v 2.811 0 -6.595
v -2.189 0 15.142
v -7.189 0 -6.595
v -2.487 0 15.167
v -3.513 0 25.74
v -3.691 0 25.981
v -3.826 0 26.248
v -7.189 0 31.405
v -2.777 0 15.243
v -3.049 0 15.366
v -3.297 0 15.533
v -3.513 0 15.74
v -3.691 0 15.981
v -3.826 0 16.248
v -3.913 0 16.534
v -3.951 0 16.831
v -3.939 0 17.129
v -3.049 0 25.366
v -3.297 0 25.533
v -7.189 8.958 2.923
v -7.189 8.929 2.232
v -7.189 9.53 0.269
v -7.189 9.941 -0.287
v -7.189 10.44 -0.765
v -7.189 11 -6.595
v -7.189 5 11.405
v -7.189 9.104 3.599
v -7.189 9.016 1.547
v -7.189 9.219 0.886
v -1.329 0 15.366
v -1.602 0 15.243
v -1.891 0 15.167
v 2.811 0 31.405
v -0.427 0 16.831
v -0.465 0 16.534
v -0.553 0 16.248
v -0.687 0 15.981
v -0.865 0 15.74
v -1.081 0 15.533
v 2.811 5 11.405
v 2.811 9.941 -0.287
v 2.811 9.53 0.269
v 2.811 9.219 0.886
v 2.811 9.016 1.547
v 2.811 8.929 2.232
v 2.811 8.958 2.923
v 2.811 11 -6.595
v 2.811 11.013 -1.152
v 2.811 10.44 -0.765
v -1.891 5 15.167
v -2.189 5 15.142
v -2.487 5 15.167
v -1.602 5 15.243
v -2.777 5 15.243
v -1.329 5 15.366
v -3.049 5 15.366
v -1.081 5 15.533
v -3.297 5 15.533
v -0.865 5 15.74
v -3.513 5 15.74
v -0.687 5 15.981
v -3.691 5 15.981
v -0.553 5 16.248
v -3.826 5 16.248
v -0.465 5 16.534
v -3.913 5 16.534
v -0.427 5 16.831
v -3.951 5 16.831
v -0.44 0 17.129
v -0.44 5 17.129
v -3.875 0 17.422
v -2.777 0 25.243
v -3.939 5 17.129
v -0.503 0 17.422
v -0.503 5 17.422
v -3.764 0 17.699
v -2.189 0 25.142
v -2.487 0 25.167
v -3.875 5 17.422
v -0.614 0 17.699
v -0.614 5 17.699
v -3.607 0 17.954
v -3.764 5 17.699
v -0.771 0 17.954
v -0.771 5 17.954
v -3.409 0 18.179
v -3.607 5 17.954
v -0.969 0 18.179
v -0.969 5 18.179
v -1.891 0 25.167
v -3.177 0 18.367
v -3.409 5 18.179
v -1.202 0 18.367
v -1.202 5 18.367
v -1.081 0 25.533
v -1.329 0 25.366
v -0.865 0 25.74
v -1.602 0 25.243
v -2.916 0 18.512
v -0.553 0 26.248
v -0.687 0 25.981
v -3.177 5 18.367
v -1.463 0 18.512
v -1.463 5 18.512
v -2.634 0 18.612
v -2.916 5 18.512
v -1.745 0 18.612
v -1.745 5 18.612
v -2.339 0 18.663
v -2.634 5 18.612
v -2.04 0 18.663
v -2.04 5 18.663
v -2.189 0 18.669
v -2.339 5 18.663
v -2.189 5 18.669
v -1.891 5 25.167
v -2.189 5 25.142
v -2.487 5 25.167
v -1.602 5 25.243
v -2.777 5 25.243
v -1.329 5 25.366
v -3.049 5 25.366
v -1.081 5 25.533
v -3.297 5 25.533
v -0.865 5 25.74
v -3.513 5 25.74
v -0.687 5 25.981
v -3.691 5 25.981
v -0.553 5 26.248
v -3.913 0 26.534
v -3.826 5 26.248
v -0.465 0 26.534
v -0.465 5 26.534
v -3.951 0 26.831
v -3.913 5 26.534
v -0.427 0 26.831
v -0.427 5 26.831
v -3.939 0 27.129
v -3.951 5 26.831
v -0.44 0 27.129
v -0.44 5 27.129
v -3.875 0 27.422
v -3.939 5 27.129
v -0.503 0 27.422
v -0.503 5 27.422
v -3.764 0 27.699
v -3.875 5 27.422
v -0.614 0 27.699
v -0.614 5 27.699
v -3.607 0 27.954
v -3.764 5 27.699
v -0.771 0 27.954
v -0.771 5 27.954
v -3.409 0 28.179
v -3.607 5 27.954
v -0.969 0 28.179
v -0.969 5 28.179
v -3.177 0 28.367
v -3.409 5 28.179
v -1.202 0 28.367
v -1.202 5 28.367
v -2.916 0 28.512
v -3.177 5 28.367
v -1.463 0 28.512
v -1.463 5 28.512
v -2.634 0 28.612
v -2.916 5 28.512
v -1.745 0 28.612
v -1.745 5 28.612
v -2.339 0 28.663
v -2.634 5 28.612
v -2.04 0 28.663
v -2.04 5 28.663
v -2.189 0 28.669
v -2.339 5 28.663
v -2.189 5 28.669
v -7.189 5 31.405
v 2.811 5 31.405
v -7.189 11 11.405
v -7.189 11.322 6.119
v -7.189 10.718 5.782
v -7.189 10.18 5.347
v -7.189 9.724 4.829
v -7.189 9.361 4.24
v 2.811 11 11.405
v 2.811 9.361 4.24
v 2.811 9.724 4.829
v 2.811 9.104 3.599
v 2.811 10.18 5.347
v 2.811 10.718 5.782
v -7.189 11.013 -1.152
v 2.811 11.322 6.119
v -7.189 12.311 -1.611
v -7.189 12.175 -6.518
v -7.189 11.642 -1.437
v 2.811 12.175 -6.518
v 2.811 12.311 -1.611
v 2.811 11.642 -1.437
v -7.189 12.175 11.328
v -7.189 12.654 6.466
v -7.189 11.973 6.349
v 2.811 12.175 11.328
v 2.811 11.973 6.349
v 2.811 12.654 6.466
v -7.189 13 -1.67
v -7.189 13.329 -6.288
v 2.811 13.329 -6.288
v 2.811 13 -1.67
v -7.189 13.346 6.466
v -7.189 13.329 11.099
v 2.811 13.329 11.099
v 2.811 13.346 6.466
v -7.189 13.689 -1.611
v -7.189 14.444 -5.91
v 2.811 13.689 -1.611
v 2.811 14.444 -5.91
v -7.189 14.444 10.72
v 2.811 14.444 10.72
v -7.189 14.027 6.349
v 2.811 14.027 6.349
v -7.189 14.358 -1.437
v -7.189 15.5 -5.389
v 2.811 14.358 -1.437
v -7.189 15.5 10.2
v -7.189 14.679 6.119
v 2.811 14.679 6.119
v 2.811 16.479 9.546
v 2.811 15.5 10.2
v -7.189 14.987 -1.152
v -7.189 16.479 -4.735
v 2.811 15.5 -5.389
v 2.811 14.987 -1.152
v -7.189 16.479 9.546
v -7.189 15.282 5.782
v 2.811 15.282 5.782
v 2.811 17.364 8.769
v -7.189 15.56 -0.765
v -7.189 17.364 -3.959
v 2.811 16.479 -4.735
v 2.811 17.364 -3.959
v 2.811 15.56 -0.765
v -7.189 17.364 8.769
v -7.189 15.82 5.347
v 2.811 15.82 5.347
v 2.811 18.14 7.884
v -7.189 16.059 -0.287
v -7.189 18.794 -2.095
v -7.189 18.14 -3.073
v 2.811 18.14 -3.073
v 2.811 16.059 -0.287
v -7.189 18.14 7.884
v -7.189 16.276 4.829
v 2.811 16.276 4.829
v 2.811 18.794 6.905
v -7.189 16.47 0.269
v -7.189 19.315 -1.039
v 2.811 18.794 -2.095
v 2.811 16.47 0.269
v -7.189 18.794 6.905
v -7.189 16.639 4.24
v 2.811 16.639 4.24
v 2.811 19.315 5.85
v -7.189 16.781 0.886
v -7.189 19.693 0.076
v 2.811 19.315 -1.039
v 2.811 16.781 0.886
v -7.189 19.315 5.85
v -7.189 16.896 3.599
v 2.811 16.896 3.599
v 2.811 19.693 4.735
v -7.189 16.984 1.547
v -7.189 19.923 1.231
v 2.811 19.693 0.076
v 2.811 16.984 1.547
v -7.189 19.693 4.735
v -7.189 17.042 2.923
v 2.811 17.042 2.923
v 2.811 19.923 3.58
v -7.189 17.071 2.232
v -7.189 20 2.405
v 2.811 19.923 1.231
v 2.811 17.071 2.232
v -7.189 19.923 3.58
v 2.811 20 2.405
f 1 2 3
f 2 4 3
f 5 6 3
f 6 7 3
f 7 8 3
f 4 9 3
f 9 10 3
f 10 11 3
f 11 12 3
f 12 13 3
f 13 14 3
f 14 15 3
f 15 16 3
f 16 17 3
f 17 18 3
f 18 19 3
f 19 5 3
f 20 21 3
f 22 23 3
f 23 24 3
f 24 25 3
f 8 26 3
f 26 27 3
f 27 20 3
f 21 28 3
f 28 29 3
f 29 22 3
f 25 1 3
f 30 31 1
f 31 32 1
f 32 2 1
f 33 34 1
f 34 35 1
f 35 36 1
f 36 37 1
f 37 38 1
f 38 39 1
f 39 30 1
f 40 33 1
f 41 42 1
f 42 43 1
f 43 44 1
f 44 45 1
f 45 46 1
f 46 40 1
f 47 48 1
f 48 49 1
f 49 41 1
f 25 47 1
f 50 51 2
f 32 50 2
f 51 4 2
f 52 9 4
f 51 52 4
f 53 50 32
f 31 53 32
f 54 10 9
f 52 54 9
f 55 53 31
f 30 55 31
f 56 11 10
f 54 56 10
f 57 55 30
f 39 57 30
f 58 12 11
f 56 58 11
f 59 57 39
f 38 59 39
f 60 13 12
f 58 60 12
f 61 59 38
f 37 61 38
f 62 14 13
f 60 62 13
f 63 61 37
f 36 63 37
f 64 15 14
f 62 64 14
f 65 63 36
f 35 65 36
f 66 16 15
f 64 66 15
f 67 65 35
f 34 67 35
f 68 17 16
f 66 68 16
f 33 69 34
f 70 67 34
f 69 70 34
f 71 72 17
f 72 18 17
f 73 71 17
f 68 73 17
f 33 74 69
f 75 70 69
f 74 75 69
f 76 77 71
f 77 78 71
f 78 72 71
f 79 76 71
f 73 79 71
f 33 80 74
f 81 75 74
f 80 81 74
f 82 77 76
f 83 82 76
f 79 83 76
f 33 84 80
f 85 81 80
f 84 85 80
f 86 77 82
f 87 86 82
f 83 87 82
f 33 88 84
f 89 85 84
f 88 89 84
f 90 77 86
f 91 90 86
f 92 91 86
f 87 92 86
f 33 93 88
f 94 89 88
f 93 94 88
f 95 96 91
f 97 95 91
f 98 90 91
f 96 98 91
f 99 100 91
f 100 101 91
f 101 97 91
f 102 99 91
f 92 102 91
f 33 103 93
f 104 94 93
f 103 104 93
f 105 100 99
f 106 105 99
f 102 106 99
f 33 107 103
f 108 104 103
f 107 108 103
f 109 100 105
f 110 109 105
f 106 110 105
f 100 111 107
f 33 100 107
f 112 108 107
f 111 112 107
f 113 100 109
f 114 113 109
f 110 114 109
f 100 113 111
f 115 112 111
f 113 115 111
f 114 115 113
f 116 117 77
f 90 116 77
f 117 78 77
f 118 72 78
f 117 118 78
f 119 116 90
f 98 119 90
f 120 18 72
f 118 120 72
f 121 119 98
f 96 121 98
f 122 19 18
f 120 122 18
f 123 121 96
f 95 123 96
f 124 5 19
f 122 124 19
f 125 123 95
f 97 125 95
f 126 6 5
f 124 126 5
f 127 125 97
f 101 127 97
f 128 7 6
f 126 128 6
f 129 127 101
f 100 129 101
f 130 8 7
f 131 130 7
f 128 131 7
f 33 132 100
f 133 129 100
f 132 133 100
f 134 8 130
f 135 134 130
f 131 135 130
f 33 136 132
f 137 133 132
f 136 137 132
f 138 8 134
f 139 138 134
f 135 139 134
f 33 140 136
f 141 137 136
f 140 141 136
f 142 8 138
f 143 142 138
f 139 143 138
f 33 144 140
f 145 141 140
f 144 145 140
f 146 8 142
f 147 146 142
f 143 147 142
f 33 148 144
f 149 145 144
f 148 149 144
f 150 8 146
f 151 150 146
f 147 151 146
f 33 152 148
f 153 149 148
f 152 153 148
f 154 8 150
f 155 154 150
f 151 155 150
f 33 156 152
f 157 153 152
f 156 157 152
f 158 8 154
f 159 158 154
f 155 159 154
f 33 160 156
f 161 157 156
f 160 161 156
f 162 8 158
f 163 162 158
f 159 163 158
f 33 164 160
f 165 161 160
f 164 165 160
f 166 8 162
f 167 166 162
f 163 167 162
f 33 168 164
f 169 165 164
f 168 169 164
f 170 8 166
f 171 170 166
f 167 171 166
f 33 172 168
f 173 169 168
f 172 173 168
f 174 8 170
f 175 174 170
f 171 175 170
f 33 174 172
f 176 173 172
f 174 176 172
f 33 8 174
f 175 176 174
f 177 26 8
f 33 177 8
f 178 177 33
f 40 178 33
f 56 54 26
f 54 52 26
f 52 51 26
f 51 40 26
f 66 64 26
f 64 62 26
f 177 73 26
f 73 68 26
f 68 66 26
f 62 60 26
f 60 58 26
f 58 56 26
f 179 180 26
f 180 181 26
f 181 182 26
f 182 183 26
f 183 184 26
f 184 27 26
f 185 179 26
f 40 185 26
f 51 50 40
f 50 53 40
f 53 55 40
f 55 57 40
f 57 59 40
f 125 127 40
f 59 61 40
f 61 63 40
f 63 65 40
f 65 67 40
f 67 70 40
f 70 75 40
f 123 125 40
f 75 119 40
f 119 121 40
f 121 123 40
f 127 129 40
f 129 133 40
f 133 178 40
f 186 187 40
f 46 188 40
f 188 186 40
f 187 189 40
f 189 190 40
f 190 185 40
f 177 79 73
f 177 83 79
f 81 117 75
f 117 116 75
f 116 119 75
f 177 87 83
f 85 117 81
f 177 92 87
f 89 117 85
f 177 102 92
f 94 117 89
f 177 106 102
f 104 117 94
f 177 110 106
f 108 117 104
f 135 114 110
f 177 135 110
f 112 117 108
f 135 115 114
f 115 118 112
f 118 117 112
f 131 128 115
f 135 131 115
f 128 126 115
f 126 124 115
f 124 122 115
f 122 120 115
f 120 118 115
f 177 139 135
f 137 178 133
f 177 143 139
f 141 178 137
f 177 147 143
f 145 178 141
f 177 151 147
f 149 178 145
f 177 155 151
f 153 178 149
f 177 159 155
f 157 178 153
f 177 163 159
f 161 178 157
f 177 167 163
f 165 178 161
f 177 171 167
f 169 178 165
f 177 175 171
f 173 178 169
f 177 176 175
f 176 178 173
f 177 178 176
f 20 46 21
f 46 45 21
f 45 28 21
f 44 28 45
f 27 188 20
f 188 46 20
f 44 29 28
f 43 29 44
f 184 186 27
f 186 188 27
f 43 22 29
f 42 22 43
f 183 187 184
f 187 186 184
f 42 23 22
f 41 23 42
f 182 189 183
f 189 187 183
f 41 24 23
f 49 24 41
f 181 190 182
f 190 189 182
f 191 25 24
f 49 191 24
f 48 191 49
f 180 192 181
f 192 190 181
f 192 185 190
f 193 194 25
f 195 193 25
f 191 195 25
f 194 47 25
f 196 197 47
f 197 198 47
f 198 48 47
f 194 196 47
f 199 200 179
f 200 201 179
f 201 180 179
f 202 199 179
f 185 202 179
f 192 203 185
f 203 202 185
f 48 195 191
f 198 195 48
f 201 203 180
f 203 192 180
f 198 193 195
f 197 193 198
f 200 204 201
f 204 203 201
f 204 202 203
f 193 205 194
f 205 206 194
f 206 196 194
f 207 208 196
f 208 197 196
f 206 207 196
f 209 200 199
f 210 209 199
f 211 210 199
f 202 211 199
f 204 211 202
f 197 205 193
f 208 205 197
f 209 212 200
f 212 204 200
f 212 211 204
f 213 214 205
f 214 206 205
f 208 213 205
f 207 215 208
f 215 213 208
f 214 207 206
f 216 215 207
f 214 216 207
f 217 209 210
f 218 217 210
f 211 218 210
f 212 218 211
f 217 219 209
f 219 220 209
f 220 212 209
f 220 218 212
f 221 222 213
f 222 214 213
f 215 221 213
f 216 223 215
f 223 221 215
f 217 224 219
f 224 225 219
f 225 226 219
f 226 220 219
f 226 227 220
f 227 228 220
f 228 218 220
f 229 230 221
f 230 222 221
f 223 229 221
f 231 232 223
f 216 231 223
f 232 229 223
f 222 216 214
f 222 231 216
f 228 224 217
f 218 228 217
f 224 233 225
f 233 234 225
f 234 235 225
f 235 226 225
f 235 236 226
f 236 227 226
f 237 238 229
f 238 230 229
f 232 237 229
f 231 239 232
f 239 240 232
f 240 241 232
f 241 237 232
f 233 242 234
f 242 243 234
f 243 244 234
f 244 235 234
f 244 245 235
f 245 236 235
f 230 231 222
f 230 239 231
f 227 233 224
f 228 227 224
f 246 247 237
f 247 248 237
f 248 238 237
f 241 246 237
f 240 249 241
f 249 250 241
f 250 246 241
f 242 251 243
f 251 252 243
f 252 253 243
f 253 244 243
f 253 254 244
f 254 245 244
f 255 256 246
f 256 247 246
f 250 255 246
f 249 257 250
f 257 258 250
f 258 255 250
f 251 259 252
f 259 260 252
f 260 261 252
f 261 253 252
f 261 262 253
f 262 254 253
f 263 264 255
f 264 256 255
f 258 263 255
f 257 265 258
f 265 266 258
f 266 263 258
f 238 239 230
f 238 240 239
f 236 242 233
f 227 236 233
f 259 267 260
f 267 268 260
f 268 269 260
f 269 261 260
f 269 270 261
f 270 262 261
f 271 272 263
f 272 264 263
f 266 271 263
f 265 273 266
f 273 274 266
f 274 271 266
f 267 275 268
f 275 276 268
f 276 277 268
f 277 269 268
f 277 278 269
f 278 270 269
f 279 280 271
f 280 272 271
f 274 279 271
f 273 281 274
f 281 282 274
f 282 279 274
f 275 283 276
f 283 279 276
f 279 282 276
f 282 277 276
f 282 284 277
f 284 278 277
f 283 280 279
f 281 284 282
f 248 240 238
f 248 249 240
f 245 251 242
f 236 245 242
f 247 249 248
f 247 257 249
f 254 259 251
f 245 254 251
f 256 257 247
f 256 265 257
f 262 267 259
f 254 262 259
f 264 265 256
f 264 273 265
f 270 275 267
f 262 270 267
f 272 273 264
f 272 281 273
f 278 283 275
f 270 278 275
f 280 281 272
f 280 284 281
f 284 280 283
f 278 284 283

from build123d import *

# Parameters (mm, degrees)
SKETCH_2_W          = 10
SKETCH_2_H          = 38
SKETCH_2_R          = 1.763596052
EXTRUDE_2_DEPTH     = 5
SKETCH_3_W          = 10
SKETCH_3_H          = 18
EXTRUDE_3_DEPTH     = 15
FILLET_1_R          = 9
SKETCH_4_R          = 4.075
CUT_EXTRUDE_1_DEPTH = 20


with BuildPart() as part:
    # 草图2 → 凸台-拉伸2 (new body)
    with BuildSketch(Plane(origin=(0, 0, 0), x_dir=(1, 0, 0), z_dir=(0, 1, 0))):
        with Locations((-2.189189189, -12.405405405)):
            Rectangle(SKETCH_2_W, SKETCH_2_H)
        with Locations(Location((-2.189189189, -26.905405405, 0), (0, 0, 270))):
            Circle(SKETCH_2_R, mode=Mode.SUBTRACT)
        with Locations(Location((-2.189189189, -16.905405405, 0), (0, 0, 270))):
            Circle(SKETCH_2_R, mode=Mode.SUBTRACT)
    extrude(amount=EXTRUDE_2_DEPTH)

    # 草图3 → 凸台-拉伸3 (add)
    with BuildSketch(Plane(origin=(0, 5, 0), x_dir=(1, 0, 0), z_dir=(0, 1, 0))):
        with Locations((-2.189189189, -2.405405405)):
            Rectangle(SKETCH_3_W, SKETCH_3_H)
    extrude(amount=EXTRUDE_3_DEPTH)

    # 圆角1
    fillet_1_edges = [part.edges().sort_by_distance(p)[0] for p in [
        (-2.189189189, 20, 11.405405405),
        (-2.189189189, 20, -6.594594595),
    ]]
    fillet(fillet_1_edges, radius=FILLET_1_R - 0.0001)  # a hair under: the kernel refuses the full size

    # 草图4 → 切除-拉伸1 (cut)
    with BuildSketch(Plane(origin=(2.810810811, 0, 0), x_dir=(0, 0, -1), z_dir=(1, 0, 0))):
        with Locations((-2.405405405, 13)):
            Circle(SKETCH_4_R)
    extrude(amount=-CUT_EXTRUDE_1_DEPTH, mode=Mode.SUBTRACT)


solid = part.part
